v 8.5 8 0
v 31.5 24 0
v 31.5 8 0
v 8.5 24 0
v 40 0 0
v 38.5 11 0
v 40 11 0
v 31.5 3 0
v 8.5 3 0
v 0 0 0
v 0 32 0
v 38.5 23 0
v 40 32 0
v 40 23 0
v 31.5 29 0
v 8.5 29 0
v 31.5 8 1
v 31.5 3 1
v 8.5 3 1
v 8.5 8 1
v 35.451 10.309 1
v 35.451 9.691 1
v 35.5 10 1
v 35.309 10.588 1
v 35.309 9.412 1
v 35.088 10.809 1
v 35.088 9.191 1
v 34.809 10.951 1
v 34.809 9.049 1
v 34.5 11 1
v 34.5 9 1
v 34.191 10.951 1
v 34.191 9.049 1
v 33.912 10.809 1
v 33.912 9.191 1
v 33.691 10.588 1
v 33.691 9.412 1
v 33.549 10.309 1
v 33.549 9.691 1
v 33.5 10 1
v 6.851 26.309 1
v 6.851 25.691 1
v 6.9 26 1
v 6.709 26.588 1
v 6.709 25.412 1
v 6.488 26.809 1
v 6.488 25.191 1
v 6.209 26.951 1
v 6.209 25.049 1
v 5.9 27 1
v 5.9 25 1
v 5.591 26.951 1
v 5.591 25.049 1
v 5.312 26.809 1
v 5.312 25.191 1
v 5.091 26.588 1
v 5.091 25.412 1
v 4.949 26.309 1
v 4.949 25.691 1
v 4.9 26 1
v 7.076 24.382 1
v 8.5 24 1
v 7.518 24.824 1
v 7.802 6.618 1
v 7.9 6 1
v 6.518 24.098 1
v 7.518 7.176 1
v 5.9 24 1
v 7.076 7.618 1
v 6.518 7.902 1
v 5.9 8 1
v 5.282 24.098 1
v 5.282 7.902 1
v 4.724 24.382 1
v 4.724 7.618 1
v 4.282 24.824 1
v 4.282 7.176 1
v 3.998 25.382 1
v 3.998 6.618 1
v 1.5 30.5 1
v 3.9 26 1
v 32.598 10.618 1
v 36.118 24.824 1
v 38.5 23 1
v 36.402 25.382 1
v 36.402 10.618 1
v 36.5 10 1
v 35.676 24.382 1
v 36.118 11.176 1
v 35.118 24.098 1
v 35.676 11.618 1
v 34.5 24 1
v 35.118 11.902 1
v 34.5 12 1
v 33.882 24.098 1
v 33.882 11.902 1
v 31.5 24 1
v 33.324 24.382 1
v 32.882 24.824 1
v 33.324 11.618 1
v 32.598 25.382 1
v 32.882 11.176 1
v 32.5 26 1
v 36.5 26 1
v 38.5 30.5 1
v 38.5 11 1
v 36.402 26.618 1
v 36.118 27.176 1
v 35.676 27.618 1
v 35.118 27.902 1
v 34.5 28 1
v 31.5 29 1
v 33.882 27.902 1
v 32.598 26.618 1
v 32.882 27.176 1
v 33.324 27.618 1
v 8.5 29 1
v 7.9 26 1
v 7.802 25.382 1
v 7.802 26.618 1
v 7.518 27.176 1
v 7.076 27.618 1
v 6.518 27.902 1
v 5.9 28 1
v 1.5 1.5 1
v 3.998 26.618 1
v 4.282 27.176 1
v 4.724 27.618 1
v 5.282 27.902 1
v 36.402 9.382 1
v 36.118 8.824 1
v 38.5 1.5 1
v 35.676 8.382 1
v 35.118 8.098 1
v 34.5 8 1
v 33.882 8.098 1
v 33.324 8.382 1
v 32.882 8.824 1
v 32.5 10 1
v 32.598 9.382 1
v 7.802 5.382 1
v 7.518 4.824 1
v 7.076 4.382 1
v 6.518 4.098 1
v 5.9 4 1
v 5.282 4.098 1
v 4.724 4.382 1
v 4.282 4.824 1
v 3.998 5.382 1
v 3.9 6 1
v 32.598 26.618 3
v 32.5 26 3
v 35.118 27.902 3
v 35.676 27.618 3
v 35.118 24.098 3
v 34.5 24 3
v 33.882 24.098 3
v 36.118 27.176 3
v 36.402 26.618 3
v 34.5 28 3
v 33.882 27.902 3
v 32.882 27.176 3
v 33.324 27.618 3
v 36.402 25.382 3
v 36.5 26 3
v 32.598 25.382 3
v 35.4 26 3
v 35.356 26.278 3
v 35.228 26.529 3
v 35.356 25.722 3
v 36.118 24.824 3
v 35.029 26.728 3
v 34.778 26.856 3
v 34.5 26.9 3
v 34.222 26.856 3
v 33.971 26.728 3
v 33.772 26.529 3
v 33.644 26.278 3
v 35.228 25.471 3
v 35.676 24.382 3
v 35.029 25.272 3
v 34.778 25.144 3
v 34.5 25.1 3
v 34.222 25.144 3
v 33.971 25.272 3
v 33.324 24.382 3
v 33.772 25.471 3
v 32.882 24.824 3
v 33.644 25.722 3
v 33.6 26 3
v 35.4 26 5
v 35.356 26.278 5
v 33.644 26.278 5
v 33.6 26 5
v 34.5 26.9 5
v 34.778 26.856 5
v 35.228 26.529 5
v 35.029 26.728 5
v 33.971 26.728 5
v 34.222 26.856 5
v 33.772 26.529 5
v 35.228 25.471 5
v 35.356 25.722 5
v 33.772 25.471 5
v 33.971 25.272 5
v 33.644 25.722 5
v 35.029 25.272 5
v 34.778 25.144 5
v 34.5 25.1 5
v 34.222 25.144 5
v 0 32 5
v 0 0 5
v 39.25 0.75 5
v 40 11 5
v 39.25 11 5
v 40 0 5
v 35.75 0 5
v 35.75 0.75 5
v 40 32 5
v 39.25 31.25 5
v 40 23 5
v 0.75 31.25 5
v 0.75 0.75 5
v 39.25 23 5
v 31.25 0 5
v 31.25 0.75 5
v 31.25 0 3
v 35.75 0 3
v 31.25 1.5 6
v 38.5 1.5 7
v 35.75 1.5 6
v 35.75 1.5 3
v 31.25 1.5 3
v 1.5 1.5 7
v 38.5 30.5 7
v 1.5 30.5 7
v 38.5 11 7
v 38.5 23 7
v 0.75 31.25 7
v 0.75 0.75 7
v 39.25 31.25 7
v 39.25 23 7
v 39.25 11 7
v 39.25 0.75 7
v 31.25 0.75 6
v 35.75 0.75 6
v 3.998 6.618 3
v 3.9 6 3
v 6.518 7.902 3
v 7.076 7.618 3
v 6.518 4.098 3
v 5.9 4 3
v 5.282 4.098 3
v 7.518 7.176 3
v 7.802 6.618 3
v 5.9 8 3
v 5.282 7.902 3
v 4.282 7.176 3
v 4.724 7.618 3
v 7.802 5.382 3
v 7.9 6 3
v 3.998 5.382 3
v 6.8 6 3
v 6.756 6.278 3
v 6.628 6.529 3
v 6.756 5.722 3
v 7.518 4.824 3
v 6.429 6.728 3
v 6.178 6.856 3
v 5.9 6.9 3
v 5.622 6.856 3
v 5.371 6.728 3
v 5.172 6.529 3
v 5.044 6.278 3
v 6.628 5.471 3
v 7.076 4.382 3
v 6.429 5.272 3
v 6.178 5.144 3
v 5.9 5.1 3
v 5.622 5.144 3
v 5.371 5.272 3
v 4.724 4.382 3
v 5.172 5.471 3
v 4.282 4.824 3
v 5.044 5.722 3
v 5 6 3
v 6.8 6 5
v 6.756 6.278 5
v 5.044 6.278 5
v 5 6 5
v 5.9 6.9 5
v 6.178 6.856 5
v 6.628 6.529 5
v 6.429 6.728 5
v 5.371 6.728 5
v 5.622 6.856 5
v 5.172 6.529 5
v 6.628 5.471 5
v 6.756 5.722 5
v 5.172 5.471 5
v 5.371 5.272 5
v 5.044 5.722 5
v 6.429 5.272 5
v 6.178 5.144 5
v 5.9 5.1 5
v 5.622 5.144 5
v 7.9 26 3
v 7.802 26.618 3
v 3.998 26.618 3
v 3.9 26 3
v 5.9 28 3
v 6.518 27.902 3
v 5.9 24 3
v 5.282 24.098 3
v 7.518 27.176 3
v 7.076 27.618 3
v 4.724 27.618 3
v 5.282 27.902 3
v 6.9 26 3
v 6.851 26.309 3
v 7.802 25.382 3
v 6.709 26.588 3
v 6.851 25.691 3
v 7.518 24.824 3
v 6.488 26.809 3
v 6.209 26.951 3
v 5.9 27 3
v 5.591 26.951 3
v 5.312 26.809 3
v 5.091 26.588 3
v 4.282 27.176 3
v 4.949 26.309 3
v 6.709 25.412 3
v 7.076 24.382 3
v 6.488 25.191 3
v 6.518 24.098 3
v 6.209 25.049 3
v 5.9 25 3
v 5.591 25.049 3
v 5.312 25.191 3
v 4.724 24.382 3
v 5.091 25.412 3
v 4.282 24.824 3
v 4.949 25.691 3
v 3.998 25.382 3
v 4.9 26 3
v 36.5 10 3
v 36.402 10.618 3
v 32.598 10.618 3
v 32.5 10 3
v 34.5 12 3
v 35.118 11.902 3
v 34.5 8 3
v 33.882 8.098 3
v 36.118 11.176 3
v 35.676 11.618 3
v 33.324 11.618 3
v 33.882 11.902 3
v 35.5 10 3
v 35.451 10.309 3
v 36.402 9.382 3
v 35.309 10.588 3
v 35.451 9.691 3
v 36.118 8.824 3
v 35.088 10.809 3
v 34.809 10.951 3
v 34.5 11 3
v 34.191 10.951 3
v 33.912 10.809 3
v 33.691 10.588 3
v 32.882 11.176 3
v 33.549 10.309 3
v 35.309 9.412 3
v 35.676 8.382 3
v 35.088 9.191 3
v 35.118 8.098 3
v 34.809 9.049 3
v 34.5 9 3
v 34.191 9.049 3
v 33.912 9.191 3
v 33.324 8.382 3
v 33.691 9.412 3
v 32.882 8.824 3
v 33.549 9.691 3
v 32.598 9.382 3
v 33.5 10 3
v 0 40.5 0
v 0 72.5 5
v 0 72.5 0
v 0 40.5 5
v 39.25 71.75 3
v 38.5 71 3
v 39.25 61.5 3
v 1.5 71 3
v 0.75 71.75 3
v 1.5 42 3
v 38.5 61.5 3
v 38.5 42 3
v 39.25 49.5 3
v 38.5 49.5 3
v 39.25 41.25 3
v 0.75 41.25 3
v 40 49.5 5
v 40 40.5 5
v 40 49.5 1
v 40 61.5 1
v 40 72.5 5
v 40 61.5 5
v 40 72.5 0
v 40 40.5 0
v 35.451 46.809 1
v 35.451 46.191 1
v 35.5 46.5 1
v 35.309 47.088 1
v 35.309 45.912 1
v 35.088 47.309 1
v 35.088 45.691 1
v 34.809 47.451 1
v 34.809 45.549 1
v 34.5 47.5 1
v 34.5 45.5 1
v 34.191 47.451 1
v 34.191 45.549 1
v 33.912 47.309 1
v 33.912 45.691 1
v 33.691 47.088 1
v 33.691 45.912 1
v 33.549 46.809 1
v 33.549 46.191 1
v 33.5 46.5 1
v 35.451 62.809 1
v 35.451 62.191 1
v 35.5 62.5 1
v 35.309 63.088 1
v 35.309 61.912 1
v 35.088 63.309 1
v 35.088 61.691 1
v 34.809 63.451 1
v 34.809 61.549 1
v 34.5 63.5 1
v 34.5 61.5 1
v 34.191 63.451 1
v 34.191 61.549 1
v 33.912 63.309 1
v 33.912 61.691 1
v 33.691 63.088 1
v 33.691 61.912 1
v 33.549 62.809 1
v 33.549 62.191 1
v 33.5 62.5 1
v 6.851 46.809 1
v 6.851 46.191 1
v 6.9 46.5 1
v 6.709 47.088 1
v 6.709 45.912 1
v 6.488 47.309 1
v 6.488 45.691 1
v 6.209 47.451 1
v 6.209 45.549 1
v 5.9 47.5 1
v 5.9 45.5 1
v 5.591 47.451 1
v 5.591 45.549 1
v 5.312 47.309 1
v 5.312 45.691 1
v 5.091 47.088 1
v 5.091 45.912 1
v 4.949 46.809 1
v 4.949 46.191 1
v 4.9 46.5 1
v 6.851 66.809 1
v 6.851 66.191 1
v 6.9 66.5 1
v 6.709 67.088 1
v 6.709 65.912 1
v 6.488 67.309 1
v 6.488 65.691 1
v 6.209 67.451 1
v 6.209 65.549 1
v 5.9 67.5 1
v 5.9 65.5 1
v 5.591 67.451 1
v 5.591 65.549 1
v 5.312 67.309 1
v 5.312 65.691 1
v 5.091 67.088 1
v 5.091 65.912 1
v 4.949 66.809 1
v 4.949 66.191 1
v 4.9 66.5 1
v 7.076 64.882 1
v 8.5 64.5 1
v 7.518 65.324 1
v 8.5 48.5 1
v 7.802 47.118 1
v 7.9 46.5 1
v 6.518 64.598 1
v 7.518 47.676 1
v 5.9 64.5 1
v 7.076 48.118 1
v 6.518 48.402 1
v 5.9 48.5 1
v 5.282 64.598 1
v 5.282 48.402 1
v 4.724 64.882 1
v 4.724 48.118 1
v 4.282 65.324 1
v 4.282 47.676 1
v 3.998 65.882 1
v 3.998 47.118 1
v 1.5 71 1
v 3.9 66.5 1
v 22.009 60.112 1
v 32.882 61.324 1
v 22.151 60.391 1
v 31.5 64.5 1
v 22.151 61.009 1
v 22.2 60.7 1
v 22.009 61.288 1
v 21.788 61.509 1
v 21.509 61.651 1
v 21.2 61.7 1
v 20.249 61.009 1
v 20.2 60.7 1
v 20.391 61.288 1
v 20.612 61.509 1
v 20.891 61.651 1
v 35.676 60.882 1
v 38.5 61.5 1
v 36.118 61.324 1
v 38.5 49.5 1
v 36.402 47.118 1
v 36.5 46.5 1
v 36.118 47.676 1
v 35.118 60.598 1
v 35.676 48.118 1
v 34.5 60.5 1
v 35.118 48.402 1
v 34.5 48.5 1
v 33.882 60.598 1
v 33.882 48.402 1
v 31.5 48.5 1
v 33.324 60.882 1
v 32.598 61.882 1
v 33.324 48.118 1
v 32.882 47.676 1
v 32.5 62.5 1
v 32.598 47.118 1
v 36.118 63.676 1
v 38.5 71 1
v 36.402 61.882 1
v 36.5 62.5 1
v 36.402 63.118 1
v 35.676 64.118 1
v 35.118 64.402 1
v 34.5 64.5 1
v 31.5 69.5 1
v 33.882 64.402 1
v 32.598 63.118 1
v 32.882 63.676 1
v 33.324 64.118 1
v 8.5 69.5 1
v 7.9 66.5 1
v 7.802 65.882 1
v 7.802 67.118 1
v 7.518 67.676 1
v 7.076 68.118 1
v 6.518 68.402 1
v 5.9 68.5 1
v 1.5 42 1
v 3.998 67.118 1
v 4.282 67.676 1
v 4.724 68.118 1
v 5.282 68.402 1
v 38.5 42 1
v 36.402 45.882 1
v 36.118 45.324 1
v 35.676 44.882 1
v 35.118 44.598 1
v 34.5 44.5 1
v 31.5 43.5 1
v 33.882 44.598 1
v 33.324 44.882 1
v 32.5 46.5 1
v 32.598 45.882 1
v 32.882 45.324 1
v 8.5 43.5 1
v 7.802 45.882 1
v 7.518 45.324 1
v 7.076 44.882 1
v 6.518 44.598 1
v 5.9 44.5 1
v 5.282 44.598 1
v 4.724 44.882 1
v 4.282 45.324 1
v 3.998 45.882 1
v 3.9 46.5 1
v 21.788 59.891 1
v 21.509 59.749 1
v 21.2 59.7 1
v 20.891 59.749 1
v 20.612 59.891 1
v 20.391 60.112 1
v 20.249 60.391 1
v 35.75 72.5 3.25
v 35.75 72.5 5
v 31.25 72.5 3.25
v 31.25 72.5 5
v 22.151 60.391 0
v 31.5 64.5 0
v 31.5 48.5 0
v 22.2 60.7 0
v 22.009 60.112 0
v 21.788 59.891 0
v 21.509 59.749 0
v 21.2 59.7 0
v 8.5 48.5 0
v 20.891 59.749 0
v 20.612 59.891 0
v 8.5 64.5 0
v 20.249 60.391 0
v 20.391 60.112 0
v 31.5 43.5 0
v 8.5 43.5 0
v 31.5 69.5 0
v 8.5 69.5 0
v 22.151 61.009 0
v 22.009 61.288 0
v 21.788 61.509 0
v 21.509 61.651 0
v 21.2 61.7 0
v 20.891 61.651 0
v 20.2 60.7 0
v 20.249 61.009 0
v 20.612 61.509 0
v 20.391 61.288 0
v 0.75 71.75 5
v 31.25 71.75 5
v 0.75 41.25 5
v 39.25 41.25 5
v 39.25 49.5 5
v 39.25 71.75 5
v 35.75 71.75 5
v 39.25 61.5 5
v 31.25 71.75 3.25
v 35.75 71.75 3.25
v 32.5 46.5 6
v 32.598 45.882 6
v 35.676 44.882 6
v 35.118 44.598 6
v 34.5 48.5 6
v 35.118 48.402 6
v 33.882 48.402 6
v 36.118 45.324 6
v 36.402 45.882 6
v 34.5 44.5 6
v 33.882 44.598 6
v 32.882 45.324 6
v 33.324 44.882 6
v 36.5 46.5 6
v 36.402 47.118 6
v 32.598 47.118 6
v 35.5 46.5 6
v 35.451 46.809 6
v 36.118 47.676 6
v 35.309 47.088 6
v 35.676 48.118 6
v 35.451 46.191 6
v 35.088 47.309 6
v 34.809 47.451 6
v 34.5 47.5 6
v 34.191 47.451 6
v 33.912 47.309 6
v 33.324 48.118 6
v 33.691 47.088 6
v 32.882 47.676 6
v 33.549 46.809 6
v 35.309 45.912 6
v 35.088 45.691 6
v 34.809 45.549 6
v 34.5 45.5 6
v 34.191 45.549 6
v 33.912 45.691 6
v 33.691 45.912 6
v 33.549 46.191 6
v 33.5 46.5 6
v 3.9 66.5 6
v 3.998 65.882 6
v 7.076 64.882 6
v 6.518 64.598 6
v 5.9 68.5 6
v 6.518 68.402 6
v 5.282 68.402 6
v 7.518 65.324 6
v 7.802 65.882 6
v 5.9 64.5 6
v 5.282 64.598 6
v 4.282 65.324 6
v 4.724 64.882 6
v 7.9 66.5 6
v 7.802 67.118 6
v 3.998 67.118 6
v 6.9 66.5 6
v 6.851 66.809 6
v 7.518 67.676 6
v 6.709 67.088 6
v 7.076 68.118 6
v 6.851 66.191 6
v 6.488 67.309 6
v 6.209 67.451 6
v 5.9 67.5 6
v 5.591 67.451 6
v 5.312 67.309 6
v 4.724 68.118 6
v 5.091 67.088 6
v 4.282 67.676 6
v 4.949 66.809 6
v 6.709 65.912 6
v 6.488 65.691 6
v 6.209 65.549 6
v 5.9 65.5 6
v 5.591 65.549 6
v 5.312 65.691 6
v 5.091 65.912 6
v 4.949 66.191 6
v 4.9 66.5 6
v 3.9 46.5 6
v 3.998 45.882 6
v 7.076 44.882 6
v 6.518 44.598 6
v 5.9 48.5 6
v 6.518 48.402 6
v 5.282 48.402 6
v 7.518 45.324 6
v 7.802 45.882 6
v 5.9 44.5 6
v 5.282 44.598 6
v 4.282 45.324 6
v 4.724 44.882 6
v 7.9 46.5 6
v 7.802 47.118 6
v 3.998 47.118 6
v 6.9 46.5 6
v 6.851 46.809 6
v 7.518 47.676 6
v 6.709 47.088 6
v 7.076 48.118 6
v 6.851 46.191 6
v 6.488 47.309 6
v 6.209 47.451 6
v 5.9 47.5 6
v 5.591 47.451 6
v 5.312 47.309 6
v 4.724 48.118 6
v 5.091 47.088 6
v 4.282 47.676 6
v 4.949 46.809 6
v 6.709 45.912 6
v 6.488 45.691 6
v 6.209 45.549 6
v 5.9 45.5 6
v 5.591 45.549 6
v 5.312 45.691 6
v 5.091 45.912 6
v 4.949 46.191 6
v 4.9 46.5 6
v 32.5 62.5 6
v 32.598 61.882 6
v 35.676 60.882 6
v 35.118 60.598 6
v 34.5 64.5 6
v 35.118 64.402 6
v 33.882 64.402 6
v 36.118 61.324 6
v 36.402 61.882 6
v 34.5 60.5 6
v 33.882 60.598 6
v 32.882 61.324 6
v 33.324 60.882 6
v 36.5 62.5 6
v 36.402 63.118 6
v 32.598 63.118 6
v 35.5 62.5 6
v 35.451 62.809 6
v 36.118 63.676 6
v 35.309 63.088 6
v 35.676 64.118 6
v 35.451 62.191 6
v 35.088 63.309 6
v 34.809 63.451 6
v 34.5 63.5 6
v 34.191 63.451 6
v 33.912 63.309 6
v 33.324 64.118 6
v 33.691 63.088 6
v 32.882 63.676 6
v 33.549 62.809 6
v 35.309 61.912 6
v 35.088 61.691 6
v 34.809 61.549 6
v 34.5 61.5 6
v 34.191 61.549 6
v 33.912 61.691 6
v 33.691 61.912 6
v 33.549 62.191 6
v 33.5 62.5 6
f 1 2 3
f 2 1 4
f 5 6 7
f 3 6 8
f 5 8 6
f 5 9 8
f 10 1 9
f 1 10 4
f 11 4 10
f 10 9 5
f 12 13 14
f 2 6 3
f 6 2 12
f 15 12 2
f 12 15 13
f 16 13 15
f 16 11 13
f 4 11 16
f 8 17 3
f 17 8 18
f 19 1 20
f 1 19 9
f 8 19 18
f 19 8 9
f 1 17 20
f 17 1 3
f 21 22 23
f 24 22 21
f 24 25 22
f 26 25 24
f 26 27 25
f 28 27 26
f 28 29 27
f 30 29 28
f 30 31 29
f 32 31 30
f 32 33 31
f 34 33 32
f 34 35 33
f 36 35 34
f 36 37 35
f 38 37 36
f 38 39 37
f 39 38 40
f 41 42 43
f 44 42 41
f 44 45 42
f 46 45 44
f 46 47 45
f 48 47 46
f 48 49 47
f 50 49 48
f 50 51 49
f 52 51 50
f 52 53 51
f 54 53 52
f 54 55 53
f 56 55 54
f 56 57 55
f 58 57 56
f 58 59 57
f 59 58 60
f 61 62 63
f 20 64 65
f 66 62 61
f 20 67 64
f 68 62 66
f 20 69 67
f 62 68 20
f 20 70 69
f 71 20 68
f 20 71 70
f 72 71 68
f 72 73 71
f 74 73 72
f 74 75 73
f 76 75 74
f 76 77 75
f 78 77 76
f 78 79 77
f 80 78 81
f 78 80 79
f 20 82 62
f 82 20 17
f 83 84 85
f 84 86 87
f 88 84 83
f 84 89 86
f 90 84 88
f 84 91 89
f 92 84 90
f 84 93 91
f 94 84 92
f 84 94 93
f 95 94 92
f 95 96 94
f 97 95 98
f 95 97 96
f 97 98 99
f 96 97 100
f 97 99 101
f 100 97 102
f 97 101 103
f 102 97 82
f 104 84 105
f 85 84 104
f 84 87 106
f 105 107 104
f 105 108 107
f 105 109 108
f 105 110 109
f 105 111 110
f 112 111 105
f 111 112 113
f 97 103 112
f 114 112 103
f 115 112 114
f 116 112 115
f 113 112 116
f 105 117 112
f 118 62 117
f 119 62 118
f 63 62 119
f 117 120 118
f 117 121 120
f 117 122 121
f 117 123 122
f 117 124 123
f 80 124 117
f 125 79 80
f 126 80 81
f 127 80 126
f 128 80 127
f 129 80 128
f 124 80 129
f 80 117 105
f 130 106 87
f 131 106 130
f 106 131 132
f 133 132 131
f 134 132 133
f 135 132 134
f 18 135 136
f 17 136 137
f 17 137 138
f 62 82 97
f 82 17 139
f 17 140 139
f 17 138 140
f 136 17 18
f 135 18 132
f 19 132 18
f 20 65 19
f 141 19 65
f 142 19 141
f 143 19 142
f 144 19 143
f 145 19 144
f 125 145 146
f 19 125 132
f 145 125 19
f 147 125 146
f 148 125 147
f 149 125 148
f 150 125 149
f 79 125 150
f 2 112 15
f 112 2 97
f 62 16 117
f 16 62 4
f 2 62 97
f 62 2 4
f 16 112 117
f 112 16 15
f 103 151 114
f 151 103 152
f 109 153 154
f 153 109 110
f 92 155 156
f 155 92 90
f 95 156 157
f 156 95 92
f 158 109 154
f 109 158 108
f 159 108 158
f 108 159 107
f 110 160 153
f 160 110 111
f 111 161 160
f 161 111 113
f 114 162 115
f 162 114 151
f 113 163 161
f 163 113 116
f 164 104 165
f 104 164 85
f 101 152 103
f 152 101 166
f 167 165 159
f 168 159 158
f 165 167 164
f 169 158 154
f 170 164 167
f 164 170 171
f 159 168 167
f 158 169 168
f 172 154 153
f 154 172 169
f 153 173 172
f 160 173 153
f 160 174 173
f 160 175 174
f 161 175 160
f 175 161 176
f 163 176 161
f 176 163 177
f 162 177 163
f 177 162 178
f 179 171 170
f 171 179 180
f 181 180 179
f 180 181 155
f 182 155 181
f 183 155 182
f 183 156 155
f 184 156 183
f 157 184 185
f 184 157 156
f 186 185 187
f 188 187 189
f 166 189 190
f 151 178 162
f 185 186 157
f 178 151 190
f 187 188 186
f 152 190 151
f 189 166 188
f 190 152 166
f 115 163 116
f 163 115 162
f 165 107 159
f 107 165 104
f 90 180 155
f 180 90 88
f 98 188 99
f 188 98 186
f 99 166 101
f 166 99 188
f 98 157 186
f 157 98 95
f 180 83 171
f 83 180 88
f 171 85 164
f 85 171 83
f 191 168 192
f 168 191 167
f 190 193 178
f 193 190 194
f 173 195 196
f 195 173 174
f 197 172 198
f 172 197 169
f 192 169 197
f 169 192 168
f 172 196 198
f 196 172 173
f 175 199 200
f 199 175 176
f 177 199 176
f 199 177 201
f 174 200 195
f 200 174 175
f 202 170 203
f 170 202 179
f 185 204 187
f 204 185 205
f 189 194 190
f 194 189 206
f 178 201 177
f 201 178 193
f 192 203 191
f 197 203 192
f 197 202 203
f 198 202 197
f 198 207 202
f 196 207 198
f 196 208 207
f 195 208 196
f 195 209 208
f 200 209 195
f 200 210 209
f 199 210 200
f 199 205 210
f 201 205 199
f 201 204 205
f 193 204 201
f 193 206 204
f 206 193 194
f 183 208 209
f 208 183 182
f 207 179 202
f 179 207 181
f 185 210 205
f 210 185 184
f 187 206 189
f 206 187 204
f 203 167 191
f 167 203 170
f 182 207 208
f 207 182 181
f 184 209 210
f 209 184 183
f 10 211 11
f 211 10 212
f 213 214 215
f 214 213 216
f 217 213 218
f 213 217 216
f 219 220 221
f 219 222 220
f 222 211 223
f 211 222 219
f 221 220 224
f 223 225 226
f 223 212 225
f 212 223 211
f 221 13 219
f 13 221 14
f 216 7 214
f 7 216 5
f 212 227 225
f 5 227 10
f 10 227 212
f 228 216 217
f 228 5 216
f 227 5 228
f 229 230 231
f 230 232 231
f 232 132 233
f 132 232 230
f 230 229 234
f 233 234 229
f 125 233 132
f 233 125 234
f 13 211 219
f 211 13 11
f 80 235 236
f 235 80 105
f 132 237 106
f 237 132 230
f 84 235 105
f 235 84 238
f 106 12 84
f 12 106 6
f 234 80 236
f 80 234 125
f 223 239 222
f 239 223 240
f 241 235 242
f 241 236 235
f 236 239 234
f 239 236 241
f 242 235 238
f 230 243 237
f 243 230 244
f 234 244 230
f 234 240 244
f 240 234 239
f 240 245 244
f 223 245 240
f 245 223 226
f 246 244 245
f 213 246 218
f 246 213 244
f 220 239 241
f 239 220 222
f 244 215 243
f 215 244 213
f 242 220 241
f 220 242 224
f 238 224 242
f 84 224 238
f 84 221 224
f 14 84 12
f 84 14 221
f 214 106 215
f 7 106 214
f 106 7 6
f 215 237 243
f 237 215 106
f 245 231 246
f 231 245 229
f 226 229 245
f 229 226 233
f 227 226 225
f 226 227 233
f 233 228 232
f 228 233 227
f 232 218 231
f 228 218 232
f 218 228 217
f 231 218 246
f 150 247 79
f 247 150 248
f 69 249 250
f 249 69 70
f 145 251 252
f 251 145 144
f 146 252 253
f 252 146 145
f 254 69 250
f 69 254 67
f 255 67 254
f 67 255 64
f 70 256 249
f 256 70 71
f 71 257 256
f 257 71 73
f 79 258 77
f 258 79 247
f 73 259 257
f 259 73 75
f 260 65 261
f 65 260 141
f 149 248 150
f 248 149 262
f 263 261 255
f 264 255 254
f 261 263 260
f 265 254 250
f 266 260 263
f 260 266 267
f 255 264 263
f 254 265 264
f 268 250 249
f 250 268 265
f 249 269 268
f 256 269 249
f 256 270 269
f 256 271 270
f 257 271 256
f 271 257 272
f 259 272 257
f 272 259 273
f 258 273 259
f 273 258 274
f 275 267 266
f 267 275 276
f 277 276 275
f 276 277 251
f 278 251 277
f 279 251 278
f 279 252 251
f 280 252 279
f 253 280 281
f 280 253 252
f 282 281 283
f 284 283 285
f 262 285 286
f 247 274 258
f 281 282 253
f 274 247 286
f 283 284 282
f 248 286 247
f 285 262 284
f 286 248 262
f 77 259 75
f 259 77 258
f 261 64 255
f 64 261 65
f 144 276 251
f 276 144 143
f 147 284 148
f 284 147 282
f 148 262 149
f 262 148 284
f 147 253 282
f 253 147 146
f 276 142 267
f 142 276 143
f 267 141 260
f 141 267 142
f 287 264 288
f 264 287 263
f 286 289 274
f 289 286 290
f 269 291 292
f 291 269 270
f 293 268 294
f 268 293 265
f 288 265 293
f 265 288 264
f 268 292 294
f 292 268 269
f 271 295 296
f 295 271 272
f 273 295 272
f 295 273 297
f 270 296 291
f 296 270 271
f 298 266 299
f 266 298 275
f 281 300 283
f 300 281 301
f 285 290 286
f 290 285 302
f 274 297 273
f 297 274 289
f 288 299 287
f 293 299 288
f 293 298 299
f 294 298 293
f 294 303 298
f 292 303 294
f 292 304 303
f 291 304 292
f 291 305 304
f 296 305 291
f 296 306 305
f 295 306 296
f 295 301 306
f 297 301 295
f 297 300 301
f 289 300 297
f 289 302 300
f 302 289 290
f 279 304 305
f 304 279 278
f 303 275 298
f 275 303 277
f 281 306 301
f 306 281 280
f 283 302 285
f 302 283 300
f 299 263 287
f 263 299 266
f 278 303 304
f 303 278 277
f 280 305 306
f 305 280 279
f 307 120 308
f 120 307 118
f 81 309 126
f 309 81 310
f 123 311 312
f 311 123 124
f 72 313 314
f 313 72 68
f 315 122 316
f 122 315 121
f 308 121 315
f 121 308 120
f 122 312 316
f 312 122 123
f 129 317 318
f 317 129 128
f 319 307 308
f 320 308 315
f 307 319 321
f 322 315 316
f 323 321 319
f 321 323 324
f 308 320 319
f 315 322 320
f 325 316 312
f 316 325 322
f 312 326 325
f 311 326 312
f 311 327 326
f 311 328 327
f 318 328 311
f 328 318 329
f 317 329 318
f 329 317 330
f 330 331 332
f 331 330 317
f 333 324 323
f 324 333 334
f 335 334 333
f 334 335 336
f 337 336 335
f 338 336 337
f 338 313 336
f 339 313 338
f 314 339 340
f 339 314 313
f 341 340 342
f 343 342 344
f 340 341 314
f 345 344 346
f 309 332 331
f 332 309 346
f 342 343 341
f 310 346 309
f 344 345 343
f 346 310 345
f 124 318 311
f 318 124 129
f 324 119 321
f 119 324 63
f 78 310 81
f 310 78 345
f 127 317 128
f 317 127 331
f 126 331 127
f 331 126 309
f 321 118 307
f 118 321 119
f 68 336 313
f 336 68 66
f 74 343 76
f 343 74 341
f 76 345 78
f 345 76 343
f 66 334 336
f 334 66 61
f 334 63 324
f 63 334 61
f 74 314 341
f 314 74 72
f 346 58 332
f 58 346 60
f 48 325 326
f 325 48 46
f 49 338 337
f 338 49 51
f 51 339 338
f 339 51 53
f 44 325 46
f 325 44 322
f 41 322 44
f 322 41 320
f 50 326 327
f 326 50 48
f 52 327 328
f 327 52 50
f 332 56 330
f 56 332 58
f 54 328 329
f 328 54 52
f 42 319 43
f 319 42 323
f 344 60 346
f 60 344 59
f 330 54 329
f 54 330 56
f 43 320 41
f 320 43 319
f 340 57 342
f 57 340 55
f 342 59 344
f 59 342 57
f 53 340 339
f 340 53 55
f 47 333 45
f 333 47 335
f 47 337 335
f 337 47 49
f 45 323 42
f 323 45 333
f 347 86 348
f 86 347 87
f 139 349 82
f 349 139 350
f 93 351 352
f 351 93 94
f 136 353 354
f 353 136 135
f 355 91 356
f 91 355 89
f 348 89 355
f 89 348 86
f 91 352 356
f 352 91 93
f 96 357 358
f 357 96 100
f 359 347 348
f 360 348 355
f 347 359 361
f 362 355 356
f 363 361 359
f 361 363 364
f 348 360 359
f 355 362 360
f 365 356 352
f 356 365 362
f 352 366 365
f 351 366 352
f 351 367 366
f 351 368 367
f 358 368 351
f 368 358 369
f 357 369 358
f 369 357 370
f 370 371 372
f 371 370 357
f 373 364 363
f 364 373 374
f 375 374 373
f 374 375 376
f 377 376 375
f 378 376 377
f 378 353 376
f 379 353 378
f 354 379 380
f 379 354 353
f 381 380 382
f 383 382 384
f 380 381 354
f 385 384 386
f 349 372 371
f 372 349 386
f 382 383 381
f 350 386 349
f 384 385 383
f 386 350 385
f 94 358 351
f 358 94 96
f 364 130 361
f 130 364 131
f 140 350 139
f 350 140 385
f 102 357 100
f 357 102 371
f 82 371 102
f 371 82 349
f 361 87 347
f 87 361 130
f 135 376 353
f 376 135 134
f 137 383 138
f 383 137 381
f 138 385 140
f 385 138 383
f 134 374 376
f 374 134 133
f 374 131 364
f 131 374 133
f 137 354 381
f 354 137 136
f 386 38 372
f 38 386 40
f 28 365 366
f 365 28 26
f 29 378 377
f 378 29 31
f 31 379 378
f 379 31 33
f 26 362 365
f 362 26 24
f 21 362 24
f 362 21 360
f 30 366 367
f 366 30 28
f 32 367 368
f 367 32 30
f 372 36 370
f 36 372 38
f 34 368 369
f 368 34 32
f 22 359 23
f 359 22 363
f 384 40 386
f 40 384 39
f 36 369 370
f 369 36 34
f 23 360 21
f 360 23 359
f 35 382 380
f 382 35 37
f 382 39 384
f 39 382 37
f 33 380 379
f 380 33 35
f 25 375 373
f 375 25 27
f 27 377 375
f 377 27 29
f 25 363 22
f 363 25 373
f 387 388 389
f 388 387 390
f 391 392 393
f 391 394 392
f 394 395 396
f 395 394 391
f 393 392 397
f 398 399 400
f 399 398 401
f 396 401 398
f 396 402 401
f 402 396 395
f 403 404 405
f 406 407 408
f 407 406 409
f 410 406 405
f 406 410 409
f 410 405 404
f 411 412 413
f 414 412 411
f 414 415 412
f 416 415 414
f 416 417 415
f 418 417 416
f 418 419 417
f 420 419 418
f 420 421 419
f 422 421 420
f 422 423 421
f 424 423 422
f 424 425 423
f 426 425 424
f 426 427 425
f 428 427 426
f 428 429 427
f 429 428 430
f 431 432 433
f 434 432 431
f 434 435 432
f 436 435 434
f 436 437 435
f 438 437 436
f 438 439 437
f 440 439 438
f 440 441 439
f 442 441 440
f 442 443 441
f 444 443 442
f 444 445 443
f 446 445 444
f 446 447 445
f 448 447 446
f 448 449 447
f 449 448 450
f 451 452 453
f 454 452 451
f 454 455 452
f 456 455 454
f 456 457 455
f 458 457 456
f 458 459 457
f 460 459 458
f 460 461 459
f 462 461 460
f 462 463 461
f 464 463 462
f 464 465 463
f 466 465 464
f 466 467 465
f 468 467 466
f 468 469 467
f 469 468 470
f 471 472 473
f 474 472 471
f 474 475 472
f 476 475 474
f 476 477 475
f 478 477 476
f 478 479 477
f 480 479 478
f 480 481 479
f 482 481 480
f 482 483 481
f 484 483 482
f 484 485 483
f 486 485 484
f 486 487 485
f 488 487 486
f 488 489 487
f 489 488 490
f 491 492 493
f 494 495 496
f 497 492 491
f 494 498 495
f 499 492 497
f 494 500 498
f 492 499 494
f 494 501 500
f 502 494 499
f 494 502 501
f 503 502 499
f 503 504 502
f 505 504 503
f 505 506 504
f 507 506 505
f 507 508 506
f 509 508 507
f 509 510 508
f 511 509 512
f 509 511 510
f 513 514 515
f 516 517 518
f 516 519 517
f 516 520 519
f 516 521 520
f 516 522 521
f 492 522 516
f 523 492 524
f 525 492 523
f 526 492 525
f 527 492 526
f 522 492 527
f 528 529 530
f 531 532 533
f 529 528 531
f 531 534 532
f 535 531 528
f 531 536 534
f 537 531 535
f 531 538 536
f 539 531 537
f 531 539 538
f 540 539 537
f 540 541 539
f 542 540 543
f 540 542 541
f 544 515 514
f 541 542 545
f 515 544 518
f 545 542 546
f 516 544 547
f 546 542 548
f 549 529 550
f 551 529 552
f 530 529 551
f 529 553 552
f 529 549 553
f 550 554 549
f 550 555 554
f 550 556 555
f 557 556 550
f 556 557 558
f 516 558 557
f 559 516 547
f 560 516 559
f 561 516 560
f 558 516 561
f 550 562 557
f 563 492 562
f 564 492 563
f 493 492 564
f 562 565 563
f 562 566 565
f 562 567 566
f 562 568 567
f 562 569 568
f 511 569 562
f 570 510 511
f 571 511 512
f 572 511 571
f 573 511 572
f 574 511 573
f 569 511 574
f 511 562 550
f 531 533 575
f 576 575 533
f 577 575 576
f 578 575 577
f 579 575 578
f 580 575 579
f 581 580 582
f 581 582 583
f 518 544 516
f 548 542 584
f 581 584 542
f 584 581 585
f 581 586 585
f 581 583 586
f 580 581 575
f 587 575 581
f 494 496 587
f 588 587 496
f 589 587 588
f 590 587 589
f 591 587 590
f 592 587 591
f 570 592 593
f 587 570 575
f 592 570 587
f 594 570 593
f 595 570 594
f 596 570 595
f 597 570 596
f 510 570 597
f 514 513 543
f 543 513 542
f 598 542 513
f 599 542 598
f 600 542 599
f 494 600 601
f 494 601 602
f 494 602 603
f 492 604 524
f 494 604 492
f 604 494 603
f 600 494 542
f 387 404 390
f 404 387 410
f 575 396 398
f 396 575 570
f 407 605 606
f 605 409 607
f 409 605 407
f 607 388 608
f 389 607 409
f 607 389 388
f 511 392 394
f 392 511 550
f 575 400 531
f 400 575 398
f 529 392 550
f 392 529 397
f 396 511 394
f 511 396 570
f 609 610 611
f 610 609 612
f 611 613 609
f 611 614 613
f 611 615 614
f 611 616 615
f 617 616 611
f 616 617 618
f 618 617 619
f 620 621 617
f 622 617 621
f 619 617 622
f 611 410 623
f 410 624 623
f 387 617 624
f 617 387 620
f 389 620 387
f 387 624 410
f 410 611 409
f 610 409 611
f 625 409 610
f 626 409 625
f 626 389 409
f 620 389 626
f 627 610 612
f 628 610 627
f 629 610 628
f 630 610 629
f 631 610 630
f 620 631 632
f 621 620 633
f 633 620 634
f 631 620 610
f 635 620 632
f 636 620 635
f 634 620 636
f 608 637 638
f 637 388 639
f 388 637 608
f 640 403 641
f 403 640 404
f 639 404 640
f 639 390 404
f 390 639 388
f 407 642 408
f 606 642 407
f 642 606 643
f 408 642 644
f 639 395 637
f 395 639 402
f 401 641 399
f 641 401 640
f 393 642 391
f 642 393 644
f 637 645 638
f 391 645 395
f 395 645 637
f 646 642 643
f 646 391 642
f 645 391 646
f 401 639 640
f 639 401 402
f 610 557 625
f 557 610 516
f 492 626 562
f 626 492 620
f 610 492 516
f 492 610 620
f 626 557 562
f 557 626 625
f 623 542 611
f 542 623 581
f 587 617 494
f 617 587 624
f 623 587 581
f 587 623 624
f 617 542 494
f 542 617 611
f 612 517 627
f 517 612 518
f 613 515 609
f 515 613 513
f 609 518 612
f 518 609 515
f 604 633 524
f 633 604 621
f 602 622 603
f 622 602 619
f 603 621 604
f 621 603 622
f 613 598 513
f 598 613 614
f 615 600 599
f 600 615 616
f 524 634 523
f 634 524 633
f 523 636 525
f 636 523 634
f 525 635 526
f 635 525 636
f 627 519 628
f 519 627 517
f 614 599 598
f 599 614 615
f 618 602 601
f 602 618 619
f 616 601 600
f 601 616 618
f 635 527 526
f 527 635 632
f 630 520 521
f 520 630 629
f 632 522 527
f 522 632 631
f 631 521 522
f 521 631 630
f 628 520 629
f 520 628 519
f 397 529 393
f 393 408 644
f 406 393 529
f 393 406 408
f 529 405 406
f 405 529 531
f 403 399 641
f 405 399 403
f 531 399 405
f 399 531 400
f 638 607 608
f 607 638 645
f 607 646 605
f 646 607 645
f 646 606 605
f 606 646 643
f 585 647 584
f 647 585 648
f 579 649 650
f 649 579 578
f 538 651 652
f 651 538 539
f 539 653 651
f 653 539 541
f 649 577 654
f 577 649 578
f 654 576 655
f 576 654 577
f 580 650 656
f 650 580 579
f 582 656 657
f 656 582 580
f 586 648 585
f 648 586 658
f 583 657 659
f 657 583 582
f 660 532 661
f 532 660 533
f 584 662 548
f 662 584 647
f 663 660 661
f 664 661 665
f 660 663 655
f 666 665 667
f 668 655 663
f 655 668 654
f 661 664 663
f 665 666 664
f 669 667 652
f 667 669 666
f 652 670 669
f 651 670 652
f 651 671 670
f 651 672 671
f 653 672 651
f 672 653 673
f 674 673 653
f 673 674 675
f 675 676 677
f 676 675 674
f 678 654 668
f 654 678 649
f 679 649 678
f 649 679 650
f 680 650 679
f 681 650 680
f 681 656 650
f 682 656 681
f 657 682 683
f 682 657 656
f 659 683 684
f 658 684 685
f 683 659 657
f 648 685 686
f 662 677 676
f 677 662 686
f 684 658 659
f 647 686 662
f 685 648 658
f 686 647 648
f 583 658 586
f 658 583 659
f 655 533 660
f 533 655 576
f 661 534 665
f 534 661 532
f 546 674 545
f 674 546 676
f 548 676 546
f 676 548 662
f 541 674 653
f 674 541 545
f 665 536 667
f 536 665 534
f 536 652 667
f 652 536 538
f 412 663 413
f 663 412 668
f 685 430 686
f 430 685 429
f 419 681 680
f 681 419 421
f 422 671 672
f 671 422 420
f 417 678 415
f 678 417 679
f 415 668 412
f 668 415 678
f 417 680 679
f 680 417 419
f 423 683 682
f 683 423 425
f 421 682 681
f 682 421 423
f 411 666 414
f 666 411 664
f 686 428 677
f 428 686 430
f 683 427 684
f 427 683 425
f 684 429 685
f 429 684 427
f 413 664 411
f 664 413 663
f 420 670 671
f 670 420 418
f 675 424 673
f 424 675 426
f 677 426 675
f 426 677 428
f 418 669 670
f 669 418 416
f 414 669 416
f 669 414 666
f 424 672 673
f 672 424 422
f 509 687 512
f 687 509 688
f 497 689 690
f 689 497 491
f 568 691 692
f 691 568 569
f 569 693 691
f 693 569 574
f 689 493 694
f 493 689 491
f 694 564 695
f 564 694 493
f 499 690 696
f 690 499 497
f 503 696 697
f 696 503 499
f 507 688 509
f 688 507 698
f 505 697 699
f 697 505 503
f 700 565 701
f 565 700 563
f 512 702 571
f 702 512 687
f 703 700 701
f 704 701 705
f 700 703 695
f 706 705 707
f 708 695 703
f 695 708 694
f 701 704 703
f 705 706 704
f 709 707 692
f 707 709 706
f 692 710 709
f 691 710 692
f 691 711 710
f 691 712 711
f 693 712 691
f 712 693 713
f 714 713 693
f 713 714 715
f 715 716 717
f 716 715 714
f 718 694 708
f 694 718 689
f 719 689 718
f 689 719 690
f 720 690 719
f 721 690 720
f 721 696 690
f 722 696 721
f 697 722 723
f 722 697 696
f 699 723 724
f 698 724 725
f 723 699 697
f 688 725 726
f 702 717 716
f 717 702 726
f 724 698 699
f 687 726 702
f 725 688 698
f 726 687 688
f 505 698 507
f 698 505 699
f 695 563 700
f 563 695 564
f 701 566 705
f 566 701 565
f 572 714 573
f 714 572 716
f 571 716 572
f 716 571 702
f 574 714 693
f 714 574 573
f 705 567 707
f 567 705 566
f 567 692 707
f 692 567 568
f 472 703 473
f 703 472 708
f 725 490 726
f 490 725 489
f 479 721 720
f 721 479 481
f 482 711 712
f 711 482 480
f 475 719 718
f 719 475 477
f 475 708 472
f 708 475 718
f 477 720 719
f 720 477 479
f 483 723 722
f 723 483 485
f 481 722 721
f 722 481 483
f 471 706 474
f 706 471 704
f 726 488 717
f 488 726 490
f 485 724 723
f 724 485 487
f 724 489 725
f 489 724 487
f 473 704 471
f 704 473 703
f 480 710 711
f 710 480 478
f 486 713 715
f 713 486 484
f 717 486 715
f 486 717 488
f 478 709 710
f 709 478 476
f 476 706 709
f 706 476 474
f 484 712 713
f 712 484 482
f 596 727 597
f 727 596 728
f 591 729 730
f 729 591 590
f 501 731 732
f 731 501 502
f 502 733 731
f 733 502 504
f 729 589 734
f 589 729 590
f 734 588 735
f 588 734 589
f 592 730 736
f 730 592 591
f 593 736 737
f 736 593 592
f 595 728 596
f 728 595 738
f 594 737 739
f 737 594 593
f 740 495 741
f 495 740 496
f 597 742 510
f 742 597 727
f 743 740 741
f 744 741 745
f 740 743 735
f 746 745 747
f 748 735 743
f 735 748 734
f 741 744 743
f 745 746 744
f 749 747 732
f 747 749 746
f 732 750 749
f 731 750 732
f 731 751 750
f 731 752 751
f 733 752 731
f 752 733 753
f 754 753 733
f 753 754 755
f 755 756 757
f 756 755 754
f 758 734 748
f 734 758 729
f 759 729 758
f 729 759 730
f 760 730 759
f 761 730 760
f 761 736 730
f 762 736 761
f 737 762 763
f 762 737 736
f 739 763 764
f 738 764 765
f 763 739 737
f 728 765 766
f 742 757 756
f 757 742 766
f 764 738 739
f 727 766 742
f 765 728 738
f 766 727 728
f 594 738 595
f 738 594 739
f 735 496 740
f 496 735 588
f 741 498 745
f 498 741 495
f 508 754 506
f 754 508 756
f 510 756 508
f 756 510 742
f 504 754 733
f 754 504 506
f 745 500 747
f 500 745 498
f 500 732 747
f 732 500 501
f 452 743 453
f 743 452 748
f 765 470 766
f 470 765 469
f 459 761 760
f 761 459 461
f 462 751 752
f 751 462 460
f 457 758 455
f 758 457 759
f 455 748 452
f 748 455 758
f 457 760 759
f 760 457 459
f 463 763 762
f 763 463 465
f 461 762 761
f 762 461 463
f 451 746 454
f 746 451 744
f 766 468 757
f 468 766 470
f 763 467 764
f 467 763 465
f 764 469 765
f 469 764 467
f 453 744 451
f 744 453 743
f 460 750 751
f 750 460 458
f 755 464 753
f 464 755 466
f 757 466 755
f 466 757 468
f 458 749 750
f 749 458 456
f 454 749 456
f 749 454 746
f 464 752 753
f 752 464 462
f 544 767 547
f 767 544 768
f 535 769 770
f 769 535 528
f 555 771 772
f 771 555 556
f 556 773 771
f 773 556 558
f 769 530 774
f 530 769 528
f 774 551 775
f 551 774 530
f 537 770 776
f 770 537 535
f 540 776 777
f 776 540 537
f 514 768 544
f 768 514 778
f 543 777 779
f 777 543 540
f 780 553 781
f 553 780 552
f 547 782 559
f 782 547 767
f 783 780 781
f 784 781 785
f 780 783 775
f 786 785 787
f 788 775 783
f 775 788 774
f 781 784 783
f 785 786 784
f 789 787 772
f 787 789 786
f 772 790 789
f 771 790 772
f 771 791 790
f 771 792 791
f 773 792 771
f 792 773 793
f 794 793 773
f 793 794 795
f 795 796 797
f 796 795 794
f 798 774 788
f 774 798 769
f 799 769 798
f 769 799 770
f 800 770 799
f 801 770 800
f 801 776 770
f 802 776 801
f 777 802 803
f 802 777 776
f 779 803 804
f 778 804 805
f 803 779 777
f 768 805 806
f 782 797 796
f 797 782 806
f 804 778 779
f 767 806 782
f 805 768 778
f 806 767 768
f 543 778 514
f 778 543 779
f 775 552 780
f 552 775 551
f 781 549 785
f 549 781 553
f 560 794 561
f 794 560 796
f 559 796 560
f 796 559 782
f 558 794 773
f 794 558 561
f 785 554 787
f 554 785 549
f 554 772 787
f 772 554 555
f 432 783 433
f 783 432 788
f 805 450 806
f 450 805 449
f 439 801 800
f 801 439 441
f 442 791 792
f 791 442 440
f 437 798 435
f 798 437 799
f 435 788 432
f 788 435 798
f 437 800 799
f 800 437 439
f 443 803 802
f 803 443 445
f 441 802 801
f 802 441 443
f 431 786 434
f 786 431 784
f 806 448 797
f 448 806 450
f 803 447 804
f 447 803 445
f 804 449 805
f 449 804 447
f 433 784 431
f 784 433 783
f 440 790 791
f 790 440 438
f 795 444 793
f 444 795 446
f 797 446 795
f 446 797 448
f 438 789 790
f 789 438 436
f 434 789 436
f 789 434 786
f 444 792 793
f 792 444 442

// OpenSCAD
//---------------------------------------------------------
// This design is parameterized based on the size of a PCB.
//
//  This is a projectbox for a Wemos D1 mini
//
//---------------------------------------------------------
include <./library/YAPPgenerator.scad>

// Note: length/lengte refers to X axis, 
//       width/breedte to Y, 
//       height/hoogte to Z

/*
      padding-back|<------pcb length --->|<padding-front
                            RIGHT
        0    X-as ---> 
        +----------------------------------------+   ---
        |                                        |    ^
        |                                        |   padding-right 
        |                                        |    v
        |    -5,y +----------------------+       |   ---              
 B    Y |         | 0,y              x,y |       |     ^              F
 A    - |         |                      |       |     |              R
 C    a |         |                      |       |     | pcb width    O
 K    s |         |                      |       |     |              N
        |         | 0,0              x,0 |       |     v              T
      ^ |    -5,0 +----------------------+       |   ---
      | |                                        |    padding-left
      0 +----------------------------------------+   ---
        0    X-as --->
                          LEFT
*/
// Edit these parameters for your own board dimensions
wall_thickness        = 1.5;
bottomPlane_thickness = 1.0;
topPlane_thickness    = 1.0;

bottomWall_height = 4;
topWall_height    = 4;

printTop          = true;
printBottom       = true;

//-- D E B U G -------------------
show_side_by_side = true;
showTop           = true;
colorTop          = "yellow";
showBottom        = true;
colorBottom       = "white";
showPCB           = false;
showMarkers       = false;
intersect         = 0;  // 0=none, 1 .. pcb_length
//-- D E B U G -------------------

// Total height of box = bottomPlane_thickness + topPlane_thickness 
//                     + bottomWall_height + topWall_height
pcb_length        = 35.0;
pcb_width         = 26.0;
pcb_thickness     = 1.0;
                            
// padding between pcb and inside wall
padding_front = 1;
padding_back  = 1;
padding_right = 1.5;
padding_left  = 1.5;

// ridge where bottom and top off box can overlap
// Make sure this isn't less than topWall_height
ridge_height = 2;

pin_diameter      = 1.8;
standoff_diameter = 4;

// How much the PCB needs to be raised from the bottom
// to leave room for solderings and whatnot
standoff_height = 2.0;


//-- pcb_standoffs  -- origin is pcb-0,0
pcbStands = [//[ [0]posx, [1]posy
             //       , [2]{yappBoth|yappTopOnly|yappBottomOnly}
             //       , [3]{yappHole|yappPin} ]
                 [3.4,  3, yappBoth, yappPin]                    // back-left
               , [3.4,  pcb_width-3, yappBoth, yappHole]         // back-right
               , [pcb_length-3,  7, yappBoth, yappHole]          // front-left
               , [pcb_length-3, pcb_width-3, yappBoth, yappPin]  // front-right
             ];

//-- front plane  -- origin is pcb-0,0 (red)
cutoutsFront = [//[ [0]pcb_y, [1]pcb_z, [2]width, [3]height
                //      , [4]{yappRectOrg | yappRectCenterd | yappCircleCenter} ]
                 [14, 0, 12, 10, yappRectCenter]  // microUSB
              ];

//-- back plane  -- origin is pcb-0,0 (red)
cutoutsBack = [ // left_x,  floor_z, square_width, square_height
                 [8, -4, 12, 10]  // microUSB
              ];

//-- top plane    -- origin is pcb-0,0
cutoutsTop = [//[ pcb_x,  pcb_y, width, length
              //    , {yappRectOrg | yappRectCenterd | yappCircleCenter} ]
                 [6, 0, 5, (pcb_length-12), yappRectOrg]           // left-header
               , [6, pcb_width-5, 5, pcb_length-12, yappRectOrg]   // right-header
               , [18.7, 8.8, 2, 0, yappCircleCenter]               // blue led
              ];

//-- bottom plane -- origin is pcb-0,0
cutoutsBottom = [//[ pcb_x,  pcb_y, width, length
                 //   , {yappRectOrg | yappRectCenter | yappCircleCenter} ]
                  [6, 0, 5, (pcb_length-12), yappRectOrg]           // left-header
                , [6, pcb_width-5, 5, pcb_length-12, yappRectOrg]   // right-header
                 ];

//-- left plane   -- origin is pcb-0,0
cutoutsLeft = [//[[0]x_pos,  [1]z_pos, [2]width, [3]height ]
               //   , [4]{yappRectOrg | yappRectCenter | yappCircleCenter} ]
                  [31, 0.5, 4.5, 3, yappRectCenter]      // reset button
                 ];

//-- right plane   -- origin is pcb-0,0
cutoutsRight = [ // z_pos,  x_pos, width, height 
             // , [0, pcb_length-8, 8, 4]
             //   [0, 5, 8, 5]
                 ];

box_width=(pcb_width+(wall_thickness*2)+padding_left+padding_right);
box_length=(pcb_length+(wall_thickness*2)+padding_front+padding_back);
echo("box_width: ",box_width, ", box_length: ", box_length);

//Label text
print_label=1;
font="Arial: style=bold";
fsize=4;
align="right";
text_extrude=0.5;
text_label="ESP8266";
